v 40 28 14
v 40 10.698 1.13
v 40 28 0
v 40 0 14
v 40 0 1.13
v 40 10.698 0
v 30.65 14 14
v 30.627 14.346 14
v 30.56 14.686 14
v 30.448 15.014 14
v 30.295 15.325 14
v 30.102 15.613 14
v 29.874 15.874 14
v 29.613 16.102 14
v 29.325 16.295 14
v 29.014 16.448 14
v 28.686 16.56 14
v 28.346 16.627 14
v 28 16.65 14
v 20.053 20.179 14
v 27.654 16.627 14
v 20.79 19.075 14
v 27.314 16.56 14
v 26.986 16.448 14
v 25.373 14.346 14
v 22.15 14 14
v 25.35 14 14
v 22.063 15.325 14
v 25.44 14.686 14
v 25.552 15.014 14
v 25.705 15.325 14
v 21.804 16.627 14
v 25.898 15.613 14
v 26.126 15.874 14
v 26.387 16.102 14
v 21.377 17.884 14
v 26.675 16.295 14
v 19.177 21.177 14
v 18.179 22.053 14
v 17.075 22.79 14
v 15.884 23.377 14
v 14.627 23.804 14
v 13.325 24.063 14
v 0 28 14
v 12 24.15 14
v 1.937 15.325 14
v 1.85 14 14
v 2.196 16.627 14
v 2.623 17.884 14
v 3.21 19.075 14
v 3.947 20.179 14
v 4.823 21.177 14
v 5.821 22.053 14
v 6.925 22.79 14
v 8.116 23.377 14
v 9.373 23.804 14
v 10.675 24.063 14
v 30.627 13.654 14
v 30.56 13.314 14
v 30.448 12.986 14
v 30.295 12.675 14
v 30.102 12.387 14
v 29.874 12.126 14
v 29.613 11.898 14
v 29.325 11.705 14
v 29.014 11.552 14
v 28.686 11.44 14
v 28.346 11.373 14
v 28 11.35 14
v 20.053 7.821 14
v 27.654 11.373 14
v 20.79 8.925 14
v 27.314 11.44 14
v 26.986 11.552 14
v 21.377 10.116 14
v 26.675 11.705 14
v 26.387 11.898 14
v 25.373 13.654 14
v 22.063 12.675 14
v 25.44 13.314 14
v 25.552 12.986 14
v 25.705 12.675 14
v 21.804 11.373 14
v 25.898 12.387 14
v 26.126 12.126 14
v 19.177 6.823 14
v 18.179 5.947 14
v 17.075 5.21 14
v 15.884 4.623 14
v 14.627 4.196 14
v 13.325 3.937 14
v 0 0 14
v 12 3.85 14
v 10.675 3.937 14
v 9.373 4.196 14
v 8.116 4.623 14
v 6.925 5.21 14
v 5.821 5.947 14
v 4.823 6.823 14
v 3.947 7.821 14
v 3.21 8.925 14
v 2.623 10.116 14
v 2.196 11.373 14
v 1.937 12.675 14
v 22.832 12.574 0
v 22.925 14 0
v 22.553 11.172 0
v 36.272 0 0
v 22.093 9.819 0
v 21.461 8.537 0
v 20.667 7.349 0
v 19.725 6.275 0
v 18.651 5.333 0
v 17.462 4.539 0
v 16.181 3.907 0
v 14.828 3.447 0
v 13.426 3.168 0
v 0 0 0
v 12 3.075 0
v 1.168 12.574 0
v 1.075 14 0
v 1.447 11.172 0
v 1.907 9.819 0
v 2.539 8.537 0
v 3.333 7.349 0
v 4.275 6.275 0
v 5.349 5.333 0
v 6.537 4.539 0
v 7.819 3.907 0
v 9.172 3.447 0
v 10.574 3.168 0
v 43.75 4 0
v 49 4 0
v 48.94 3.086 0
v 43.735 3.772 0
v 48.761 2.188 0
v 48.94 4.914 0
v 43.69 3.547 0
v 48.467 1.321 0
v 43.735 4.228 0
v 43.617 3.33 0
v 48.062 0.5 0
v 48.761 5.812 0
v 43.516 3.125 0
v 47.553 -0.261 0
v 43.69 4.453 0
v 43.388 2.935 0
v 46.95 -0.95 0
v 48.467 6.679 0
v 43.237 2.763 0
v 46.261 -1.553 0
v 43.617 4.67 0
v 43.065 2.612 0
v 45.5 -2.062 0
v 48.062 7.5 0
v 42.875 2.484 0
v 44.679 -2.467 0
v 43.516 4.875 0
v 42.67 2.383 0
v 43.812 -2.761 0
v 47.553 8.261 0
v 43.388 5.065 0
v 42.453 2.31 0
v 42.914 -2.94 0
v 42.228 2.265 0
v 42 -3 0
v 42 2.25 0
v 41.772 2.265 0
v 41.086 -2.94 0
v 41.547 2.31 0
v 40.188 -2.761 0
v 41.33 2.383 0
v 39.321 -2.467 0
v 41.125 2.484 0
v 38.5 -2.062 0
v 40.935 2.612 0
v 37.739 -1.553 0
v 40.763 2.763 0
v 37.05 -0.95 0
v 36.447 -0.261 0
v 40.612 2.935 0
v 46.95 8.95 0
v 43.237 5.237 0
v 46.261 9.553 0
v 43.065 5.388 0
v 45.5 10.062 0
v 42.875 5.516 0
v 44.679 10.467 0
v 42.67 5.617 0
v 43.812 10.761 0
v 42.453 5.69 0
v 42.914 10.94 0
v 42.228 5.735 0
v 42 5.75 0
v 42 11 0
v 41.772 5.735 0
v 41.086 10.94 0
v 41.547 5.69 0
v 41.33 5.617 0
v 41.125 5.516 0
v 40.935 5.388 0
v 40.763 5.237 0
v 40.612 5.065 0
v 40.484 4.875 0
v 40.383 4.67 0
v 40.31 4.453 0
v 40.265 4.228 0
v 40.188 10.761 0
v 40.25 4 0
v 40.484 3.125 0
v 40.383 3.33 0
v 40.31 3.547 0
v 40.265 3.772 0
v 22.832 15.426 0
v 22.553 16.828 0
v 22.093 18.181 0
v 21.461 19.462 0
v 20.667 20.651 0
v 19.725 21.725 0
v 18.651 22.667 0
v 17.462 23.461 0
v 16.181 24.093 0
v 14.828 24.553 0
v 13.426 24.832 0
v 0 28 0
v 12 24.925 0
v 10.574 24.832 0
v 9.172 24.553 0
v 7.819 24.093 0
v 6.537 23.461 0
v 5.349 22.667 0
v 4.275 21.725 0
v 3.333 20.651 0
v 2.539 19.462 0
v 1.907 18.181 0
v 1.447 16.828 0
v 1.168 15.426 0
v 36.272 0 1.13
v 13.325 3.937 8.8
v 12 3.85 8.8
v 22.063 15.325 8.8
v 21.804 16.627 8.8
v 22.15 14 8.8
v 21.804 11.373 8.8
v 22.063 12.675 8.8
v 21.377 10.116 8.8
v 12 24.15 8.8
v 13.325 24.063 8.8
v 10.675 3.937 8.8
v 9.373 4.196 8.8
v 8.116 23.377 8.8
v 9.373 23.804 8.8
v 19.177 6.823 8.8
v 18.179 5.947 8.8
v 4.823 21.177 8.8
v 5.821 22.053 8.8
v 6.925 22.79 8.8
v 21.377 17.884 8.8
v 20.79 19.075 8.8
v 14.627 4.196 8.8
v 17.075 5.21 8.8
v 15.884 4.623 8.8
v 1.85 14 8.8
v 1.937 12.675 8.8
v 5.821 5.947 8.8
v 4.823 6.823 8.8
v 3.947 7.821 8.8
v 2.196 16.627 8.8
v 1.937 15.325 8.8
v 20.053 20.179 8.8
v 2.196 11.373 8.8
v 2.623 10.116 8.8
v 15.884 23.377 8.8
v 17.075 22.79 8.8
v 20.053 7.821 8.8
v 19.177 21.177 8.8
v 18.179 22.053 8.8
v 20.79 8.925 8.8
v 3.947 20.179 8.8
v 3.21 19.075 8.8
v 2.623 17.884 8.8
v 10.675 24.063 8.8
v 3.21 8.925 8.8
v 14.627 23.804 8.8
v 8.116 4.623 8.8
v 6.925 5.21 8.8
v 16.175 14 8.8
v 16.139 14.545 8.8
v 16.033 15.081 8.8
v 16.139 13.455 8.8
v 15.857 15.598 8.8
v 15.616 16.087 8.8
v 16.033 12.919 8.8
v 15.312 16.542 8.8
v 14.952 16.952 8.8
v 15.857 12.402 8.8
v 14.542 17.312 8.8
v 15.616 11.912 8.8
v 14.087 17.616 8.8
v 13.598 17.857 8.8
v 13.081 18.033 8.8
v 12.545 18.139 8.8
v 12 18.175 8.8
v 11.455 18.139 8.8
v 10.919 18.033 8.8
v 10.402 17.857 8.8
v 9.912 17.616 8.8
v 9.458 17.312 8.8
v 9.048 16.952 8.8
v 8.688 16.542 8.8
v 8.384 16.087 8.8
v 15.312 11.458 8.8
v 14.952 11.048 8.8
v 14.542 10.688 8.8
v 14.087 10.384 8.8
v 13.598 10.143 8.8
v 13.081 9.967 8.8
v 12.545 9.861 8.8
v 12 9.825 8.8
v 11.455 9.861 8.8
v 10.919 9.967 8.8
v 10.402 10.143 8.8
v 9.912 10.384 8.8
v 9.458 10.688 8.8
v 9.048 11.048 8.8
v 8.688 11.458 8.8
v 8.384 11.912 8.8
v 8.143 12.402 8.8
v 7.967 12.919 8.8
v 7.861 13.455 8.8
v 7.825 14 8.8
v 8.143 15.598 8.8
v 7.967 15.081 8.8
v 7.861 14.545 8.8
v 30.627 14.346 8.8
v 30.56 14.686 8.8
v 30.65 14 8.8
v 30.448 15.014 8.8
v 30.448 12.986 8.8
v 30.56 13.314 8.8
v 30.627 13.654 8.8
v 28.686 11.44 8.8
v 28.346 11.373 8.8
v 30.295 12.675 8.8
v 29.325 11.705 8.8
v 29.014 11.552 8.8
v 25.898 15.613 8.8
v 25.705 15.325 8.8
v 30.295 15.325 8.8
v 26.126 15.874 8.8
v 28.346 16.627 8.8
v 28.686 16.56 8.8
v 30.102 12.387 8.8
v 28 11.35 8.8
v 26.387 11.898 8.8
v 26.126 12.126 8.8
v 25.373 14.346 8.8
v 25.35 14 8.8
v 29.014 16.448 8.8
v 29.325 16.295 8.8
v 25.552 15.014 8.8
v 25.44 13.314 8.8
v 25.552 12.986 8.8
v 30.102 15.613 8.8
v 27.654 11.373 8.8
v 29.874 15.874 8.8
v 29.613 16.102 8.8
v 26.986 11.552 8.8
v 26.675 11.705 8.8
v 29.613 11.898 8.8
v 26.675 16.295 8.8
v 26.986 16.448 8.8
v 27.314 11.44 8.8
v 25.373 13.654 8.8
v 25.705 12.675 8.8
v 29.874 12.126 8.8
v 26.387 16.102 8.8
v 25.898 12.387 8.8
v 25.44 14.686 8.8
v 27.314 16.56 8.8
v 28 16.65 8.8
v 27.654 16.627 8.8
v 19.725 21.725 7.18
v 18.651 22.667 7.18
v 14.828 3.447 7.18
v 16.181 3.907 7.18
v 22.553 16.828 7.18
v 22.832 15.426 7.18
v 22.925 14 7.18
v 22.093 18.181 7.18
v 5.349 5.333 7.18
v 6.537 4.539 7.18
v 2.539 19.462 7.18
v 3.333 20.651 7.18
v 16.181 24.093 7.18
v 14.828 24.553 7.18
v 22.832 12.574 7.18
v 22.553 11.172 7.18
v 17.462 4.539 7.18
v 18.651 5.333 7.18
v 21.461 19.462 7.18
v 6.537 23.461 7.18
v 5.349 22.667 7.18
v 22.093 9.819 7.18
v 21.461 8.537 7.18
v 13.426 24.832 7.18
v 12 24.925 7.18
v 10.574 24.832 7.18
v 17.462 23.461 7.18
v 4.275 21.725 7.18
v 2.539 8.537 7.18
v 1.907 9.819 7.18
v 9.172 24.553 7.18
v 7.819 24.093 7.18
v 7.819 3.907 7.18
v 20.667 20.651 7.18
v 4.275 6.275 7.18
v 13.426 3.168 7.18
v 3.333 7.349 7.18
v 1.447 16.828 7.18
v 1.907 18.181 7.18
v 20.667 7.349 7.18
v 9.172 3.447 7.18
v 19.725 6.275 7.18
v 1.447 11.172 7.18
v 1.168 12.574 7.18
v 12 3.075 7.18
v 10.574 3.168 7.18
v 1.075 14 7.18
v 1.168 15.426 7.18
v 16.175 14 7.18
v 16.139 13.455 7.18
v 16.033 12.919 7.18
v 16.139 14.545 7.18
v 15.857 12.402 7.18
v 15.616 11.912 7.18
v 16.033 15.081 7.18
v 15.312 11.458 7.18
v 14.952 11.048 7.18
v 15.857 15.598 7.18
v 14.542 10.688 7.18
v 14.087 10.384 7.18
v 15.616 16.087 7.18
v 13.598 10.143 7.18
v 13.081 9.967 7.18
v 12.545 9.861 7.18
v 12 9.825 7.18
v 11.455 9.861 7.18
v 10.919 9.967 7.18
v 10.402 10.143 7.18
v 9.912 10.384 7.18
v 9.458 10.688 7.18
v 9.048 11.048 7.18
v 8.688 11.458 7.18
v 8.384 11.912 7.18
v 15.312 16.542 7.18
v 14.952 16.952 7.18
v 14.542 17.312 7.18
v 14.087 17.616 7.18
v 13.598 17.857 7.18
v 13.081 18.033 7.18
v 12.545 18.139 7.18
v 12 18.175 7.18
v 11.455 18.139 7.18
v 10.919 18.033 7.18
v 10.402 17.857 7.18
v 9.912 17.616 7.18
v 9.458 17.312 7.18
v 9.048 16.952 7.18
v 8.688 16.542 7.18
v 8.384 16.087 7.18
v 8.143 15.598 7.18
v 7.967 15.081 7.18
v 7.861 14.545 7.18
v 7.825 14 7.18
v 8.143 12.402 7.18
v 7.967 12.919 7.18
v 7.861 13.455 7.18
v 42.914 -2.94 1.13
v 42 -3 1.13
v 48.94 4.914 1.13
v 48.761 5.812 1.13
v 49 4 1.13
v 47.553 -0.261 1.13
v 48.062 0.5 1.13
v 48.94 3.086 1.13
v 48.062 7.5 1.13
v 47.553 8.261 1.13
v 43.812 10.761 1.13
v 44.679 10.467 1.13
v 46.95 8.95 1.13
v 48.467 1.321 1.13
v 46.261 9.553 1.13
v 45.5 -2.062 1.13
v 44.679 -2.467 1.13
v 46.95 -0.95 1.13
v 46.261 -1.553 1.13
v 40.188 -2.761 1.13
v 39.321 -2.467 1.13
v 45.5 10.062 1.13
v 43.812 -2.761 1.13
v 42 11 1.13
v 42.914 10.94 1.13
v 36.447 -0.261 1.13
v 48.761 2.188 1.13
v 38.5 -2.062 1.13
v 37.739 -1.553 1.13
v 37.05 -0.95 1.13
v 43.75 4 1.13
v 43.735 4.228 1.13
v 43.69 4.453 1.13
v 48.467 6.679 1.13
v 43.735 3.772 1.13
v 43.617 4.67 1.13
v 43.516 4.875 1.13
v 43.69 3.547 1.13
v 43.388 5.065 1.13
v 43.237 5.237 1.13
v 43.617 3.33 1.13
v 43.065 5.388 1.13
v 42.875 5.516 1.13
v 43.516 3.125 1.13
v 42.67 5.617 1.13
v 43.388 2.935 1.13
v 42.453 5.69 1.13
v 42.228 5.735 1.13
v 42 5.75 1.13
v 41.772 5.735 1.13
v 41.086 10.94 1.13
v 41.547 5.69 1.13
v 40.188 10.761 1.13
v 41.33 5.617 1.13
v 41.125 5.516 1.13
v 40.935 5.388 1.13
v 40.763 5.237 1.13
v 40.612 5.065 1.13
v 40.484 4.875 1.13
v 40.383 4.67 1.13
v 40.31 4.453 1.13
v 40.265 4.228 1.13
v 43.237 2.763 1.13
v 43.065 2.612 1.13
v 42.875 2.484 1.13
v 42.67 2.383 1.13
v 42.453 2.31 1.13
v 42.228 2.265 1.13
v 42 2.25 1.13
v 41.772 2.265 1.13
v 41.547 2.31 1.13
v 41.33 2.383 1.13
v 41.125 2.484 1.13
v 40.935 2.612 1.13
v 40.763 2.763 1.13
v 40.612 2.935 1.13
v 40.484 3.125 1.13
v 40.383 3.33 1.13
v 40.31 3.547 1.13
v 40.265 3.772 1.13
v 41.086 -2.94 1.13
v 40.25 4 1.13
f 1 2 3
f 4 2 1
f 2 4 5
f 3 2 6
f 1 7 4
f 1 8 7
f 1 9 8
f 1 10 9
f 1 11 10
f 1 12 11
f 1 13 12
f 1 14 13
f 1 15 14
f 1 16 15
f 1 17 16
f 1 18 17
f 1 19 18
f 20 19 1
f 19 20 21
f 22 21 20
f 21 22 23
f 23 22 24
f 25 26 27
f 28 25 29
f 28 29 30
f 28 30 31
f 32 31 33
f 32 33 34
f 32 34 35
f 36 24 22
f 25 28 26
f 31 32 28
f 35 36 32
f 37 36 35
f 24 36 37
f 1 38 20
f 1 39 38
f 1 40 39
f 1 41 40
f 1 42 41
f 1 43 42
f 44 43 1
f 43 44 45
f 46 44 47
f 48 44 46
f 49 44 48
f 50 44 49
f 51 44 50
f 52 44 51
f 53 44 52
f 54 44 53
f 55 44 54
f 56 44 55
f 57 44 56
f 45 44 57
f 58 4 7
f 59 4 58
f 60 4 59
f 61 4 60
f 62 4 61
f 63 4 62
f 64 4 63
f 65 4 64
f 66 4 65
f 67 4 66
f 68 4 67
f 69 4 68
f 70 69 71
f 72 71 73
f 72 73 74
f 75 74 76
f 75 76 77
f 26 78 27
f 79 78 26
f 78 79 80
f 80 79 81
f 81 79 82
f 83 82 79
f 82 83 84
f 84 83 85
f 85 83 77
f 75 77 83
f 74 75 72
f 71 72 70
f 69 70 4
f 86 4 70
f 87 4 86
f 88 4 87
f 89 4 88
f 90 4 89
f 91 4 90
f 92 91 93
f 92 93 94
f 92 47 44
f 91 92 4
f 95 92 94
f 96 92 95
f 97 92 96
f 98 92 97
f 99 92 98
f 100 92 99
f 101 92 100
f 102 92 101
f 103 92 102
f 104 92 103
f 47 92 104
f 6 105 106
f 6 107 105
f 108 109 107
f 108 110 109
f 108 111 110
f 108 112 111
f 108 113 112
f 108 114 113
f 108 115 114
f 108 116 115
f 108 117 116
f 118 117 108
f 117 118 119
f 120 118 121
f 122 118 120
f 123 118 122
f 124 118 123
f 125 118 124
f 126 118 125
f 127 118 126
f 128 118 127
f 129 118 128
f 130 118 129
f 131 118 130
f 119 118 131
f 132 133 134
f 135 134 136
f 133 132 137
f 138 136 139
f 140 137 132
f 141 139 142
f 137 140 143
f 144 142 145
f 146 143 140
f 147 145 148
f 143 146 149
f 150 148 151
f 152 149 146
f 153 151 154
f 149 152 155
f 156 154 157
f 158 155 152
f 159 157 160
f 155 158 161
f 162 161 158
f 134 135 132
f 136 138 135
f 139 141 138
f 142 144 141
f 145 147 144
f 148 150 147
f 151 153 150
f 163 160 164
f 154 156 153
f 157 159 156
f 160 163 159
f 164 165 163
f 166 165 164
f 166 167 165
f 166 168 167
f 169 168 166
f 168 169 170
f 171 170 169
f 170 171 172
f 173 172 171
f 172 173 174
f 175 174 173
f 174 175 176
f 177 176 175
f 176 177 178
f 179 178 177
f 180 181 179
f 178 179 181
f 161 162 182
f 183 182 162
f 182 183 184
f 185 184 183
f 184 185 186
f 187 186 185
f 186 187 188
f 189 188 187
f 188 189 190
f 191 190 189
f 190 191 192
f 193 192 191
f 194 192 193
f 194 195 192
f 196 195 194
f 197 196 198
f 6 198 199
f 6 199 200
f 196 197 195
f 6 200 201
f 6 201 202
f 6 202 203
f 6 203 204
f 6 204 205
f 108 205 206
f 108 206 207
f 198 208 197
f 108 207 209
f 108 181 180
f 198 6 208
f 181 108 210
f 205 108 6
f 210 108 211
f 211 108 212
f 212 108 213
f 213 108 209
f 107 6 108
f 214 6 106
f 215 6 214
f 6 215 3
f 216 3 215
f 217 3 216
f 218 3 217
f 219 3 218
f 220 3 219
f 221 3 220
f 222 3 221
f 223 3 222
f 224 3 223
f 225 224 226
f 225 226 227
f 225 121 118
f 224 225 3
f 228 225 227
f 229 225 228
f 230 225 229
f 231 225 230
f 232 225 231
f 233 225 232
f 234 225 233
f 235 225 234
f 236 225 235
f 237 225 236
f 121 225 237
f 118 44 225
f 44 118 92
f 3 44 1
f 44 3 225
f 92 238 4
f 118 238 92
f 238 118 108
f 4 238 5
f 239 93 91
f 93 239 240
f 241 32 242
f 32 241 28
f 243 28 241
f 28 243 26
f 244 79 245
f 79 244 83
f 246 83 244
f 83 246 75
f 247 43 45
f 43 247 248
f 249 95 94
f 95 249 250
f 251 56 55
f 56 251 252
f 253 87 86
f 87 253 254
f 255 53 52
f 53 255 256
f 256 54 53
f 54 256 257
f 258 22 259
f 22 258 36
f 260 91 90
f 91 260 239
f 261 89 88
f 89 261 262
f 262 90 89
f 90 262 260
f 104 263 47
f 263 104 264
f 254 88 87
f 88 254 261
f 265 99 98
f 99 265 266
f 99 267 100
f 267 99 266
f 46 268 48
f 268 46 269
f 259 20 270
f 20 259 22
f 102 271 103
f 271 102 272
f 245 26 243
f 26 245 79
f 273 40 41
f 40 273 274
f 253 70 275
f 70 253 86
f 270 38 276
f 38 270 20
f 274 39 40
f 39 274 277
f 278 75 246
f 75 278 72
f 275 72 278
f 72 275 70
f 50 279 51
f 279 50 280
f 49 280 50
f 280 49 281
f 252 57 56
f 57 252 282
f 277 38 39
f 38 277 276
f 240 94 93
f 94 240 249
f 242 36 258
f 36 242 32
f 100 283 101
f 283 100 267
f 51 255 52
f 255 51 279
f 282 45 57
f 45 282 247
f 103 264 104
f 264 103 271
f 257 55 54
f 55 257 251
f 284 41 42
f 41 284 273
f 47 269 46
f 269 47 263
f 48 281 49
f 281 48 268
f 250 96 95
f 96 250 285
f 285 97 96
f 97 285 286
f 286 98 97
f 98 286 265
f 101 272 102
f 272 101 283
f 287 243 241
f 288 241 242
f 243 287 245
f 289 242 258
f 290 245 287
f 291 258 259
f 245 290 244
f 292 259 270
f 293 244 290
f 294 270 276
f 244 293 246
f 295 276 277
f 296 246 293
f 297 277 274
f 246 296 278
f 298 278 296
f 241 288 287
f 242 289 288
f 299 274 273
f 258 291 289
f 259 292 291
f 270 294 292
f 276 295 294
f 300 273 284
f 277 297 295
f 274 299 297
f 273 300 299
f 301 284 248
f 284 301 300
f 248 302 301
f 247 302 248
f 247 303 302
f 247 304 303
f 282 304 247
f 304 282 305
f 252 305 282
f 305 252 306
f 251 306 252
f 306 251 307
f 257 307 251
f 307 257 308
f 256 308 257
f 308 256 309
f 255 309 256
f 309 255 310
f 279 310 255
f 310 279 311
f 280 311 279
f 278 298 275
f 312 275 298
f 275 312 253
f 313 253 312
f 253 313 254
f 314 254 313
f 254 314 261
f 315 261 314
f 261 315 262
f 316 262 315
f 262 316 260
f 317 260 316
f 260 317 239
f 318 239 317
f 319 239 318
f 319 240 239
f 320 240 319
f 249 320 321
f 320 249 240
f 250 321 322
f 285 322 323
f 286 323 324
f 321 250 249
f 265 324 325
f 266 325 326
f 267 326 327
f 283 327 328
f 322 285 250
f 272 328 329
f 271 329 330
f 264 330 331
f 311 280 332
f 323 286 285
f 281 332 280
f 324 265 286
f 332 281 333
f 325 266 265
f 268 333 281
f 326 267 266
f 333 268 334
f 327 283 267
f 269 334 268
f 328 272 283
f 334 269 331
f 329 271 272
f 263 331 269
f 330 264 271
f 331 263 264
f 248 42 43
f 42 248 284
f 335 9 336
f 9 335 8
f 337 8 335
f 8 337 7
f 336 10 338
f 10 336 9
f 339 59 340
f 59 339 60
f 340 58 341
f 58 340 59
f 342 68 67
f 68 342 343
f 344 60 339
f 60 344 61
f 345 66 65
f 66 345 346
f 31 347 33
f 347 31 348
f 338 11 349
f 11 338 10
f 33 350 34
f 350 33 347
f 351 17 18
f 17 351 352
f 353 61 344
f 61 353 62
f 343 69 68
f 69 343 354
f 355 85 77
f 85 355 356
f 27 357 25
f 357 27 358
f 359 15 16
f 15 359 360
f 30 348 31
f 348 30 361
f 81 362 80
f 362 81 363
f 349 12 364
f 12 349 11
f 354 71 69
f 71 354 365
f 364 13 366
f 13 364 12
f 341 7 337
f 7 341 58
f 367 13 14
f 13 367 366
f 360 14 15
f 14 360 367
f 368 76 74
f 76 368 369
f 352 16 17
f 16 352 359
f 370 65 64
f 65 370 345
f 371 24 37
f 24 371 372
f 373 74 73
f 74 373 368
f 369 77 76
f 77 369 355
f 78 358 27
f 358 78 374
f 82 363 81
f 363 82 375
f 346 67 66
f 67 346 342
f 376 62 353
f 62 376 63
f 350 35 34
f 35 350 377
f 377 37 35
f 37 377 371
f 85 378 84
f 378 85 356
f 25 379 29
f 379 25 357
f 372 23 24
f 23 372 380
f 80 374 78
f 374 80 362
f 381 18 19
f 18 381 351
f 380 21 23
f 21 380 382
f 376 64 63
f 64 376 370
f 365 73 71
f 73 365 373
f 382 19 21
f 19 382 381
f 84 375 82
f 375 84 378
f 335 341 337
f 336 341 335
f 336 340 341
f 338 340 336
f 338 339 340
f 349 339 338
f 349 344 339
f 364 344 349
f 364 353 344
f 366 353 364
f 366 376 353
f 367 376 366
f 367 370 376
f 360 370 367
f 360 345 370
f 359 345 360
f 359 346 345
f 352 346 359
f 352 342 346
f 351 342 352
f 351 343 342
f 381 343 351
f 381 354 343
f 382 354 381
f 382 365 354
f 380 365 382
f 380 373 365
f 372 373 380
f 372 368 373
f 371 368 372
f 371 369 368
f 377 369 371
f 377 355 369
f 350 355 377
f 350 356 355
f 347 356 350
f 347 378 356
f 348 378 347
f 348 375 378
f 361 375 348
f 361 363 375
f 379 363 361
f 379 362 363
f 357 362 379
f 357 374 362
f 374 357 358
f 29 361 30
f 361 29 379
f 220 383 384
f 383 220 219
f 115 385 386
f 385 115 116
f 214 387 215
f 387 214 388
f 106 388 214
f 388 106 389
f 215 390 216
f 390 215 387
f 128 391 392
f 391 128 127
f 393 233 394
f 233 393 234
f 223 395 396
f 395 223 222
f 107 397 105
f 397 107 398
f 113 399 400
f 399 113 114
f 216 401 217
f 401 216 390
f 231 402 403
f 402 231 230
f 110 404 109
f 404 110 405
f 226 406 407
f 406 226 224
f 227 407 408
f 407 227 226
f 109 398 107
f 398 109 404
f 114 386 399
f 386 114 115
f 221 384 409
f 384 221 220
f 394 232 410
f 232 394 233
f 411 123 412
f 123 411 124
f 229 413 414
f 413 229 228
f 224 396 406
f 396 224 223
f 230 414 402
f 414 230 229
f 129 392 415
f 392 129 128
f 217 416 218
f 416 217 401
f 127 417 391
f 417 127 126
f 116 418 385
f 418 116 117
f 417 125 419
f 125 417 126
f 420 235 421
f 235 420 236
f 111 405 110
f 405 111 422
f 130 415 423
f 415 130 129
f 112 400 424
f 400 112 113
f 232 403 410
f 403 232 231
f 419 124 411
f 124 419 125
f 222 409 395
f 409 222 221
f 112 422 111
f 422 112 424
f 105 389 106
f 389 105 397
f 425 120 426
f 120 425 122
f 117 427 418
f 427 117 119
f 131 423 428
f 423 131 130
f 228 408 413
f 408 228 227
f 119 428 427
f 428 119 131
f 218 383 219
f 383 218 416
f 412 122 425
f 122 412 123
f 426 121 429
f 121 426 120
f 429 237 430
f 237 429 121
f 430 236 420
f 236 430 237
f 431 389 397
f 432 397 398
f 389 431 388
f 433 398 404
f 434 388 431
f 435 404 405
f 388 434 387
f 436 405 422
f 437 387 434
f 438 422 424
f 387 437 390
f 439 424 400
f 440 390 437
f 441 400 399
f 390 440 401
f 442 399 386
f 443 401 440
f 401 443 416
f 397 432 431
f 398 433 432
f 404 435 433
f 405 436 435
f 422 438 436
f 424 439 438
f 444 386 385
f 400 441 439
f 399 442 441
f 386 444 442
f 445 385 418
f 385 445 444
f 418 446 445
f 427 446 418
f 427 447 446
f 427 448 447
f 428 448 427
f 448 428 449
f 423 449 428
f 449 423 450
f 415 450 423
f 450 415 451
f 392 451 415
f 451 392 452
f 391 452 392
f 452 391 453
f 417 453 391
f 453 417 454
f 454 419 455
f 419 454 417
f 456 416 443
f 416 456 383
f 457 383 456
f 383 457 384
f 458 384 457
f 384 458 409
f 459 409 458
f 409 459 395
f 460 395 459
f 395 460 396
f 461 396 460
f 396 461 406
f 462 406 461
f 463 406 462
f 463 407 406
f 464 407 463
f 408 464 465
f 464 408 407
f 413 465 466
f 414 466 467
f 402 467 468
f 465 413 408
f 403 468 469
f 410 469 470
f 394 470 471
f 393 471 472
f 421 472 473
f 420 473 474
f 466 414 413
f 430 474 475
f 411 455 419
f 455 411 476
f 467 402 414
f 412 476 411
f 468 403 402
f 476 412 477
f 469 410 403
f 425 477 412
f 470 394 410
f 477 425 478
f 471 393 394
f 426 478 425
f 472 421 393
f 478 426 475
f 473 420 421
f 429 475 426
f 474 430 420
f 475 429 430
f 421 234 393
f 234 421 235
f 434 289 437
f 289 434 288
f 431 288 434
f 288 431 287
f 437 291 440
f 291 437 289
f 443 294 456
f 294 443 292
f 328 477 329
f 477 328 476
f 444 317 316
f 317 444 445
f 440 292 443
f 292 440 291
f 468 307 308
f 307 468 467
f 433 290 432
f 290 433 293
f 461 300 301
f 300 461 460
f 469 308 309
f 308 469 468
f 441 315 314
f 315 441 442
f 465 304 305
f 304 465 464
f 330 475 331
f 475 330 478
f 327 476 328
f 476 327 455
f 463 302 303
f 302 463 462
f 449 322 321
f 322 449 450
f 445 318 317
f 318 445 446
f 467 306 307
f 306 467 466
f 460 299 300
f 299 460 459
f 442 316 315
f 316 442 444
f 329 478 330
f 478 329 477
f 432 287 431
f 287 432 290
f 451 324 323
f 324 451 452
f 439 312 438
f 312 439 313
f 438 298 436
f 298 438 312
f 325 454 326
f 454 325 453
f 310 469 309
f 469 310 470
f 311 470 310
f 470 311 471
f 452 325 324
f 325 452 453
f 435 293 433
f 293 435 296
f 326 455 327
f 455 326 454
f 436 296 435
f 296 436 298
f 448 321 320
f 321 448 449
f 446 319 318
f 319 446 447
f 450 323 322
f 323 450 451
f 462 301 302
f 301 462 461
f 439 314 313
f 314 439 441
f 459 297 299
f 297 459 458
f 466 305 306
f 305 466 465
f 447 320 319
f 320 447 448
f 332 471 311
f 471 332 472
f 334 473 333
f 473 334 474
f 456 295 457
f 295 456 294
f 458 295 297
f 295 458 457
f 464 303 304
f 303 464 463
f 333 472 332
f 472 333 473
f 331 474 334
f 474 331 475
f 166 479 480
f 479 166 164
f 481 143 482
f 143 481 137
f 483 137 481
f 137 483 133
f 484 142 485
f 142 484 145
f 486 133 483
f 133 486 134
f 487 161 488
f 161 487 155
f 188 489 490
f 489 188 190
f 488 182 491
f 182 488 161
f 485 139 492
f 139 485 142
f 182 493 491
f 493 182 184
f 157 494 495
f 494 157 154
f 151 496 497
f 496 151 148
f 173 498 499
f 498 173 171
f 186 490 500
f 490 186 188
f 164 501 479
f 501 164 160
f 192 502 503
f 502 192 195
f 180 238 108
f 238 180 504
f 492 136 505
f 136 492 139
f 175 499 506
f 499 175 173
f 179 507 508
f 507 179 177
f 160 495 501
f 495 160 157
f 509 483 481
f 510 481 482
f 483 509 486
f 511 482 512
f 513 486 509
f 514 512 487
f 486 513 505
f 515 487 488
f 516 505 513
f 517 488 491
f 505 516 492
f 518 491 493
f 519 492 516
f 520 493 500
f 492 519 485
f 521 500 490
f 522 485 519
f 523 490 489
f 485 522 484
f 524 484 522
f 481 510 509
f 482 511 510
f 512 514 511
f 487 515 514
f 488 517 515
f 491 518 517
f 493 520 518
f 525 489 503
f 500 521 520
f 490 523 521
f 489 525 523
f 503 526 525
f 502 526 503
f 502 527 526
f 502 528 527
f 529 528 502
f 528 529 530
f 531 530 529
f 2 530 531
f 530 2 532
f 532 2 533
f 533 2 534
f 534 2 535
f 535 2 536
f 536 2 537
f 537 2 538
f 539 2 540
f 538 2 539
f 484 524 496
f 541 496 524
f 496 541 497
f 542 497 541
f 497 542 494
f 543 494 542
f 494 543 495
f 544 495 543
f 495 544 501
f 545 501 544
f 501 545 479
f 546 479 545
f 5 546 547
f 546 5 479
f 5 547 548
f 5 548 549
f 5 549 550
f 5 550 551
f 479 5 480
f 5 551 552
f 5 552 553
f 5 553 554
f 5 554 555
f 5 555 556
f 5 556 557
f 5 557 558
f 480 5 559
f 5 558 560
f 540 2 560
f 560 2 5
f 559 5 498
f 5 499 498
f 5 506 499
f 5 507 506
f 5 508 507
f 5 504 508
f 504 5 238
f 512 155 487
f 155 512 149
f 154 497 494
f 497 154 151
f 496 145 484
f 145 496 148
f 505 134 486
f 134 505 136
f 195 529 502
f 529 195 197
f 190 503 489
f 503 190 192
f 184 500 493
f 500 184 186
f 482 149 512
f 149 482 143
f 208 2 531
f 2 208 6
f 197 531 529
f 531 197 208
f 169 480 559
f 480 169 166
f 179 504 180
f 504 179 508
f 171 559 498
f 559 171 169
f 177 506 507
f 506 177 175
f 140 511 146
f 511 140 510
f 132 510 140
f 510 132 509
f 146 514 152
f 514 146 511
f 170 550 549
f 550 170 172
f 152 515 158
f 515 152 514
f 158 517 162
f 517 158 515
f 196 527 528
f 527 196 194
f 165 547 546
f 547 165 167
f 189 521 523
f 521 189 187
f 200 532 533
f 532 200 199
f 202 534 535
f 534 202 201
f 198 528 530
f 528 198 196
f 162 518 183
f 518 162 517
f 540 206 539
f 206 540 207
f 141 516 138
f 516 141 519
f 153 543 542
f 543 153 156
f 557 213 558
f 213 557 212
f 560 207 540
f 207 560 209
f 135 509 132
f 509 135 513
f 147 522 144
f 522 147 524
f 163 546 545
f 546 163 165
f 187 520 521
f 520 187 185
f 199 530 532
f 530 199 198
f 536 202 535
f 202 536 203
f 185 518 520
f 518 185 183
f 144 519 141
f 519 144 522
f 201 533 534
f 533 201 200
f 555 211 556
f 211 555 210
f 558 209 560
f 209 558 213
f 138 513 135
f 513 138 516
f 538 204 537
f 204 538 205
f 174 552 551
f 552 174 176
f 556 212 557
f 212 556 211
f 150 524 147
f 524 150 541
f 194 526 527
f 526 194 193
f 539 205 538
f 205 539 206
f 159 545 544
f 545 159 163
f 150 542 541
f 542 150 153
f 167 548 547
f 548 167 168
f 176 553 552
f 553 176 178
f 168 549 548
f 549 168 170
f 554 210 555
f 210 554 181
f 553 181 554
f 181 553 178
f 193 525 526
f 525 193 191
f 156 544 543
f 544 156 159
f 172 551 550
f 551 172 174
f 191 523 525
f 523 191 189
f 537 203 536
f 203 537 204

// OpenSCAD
// file: parameters.scad
// =============================================================================
// Gen-AS Vernier flux-claw ultra - WOUND-AWARE (HARD GATE)
// Dual-rotor vernier: Rotor B +22.5 deg vs 12-slot stator; O5 flux claws
// =============================================================================

wire_awg            = 26;
wire_od             = 0.45;
turns               = 200;      // +5 vs Gen-AP 195
fill                = 0.70;
layers_per_face     = 2;
wind_build_axial    = layers_per_face * wire_od * fill;   // 0.63 mm
wind_build_radial   = 3 * wire_od * fill;                 // 0.945 mm

coil_id_r           = 15.5;
coil_od_r           = 62.5;
span_deg            = 25.0;
former_web          = 1.25;     // thinner vs AP 1.30
flange_t            = 0.60;
wall                = 1.2;
slot_w              = 2.4;
mount_hole          = 3.5;
tab_len             = 7.0;

former_bare_h       = former_web + 2 * flange_t;            // 2.45 mm
coil_envelope_h     = former_bare_h + 2 * wind_build_axial; // 3.71 mm

run_clear           = 0.50;
gap_spacer_h        = run_clear + wind_build_axial;         // 1.13 mm
m2m                 = coil_envelope_h + 2 * run_clear;      // 4.71 mm

coil_stations       = 12;
bay_r_in            = coil_id_r - 2.0 - wind_build_radial;
bay_r_out           = coil_od_r + 2.0 + wind_build_radial;
bay_span            = span_deg + 4.0;
bay_offset          = 2.0;
stator_thick        = former_bare_h;
stator_od           = 160.0;
shaft_clear_stator  = 34.0;
coil_mount_r        = 25.5;

large_pocket_d      = 20.3;
small_pocket_d      = 5.3;
pocket_h            = 5.2;
large_n             = 8;
R_large             = 39.0;     // closer to copper centroid vs AP R=39.5
R_small_inner       = 25.0;
R_small_mid         = 39.0;
R_small_outer       = 55.0;
carrier_od          = 156.0;
carrier_thick       = 7.5;
hub_h               = 10.0;
hub_od              = 30.0;
rotor_b_offset_deg  = 22.5;     // vernier offset vs 12-slot stator

shaft_bore          = 8.35;
bearing_d           = 21.85;
bearing_h           = 7.2;
m3_clear            = 3.5;
bolt_r_inner        = 36.0;
bolt_n_inner        = 6;
flange_bolt_r       = 72.0;
flange_bolt_n       = 6;
brace_r             = 68.0;
brace_d             = 4.3;
brace_n             = 4;

spacer_pad_od       = 14.0;
spacer_pad_id       = m3_clear;
endbell_od          = 160.0;
endbell_thick       = 8.0;
endbell_shaft_clear = 10.0;

$fn = 64;
// main file
// Gen-AS fit coupon — magnet pockets + 608 + spacer height
include <parameters.scad>;
$fn = 48;
block_w = 40; block_d = 28; block_h = 14;
difference() {
    cube([block_w, block_d, block_h]);
    translate([12, block_d/2, block_h - pocket_h])
        cylinder(d=large_pocket_d, h=pocket_h + 0.2);
    translate([28, block_d/2, block_h - pocket_h])
        cylinder(d=small_pocket_d, h=pocket_h + 0.2);
    translate([12, block_d/2, -0.02])
        cylinder(d=bearing_d, h=bearing_h);
    translate([12, block_d/2, -0.1])
        cylinder(d=shaft_bore, h=block_h + 1);
}
translate([block_w + 2, 4, 0])
    difference() {
        cylinder(d=spacer_pad_od, h=gap_spacer_h);
        translate([0, 0, -0.1]) cylinder(d=spacer_pad_id, h=gap_spacer_h + 0.2);
    }
